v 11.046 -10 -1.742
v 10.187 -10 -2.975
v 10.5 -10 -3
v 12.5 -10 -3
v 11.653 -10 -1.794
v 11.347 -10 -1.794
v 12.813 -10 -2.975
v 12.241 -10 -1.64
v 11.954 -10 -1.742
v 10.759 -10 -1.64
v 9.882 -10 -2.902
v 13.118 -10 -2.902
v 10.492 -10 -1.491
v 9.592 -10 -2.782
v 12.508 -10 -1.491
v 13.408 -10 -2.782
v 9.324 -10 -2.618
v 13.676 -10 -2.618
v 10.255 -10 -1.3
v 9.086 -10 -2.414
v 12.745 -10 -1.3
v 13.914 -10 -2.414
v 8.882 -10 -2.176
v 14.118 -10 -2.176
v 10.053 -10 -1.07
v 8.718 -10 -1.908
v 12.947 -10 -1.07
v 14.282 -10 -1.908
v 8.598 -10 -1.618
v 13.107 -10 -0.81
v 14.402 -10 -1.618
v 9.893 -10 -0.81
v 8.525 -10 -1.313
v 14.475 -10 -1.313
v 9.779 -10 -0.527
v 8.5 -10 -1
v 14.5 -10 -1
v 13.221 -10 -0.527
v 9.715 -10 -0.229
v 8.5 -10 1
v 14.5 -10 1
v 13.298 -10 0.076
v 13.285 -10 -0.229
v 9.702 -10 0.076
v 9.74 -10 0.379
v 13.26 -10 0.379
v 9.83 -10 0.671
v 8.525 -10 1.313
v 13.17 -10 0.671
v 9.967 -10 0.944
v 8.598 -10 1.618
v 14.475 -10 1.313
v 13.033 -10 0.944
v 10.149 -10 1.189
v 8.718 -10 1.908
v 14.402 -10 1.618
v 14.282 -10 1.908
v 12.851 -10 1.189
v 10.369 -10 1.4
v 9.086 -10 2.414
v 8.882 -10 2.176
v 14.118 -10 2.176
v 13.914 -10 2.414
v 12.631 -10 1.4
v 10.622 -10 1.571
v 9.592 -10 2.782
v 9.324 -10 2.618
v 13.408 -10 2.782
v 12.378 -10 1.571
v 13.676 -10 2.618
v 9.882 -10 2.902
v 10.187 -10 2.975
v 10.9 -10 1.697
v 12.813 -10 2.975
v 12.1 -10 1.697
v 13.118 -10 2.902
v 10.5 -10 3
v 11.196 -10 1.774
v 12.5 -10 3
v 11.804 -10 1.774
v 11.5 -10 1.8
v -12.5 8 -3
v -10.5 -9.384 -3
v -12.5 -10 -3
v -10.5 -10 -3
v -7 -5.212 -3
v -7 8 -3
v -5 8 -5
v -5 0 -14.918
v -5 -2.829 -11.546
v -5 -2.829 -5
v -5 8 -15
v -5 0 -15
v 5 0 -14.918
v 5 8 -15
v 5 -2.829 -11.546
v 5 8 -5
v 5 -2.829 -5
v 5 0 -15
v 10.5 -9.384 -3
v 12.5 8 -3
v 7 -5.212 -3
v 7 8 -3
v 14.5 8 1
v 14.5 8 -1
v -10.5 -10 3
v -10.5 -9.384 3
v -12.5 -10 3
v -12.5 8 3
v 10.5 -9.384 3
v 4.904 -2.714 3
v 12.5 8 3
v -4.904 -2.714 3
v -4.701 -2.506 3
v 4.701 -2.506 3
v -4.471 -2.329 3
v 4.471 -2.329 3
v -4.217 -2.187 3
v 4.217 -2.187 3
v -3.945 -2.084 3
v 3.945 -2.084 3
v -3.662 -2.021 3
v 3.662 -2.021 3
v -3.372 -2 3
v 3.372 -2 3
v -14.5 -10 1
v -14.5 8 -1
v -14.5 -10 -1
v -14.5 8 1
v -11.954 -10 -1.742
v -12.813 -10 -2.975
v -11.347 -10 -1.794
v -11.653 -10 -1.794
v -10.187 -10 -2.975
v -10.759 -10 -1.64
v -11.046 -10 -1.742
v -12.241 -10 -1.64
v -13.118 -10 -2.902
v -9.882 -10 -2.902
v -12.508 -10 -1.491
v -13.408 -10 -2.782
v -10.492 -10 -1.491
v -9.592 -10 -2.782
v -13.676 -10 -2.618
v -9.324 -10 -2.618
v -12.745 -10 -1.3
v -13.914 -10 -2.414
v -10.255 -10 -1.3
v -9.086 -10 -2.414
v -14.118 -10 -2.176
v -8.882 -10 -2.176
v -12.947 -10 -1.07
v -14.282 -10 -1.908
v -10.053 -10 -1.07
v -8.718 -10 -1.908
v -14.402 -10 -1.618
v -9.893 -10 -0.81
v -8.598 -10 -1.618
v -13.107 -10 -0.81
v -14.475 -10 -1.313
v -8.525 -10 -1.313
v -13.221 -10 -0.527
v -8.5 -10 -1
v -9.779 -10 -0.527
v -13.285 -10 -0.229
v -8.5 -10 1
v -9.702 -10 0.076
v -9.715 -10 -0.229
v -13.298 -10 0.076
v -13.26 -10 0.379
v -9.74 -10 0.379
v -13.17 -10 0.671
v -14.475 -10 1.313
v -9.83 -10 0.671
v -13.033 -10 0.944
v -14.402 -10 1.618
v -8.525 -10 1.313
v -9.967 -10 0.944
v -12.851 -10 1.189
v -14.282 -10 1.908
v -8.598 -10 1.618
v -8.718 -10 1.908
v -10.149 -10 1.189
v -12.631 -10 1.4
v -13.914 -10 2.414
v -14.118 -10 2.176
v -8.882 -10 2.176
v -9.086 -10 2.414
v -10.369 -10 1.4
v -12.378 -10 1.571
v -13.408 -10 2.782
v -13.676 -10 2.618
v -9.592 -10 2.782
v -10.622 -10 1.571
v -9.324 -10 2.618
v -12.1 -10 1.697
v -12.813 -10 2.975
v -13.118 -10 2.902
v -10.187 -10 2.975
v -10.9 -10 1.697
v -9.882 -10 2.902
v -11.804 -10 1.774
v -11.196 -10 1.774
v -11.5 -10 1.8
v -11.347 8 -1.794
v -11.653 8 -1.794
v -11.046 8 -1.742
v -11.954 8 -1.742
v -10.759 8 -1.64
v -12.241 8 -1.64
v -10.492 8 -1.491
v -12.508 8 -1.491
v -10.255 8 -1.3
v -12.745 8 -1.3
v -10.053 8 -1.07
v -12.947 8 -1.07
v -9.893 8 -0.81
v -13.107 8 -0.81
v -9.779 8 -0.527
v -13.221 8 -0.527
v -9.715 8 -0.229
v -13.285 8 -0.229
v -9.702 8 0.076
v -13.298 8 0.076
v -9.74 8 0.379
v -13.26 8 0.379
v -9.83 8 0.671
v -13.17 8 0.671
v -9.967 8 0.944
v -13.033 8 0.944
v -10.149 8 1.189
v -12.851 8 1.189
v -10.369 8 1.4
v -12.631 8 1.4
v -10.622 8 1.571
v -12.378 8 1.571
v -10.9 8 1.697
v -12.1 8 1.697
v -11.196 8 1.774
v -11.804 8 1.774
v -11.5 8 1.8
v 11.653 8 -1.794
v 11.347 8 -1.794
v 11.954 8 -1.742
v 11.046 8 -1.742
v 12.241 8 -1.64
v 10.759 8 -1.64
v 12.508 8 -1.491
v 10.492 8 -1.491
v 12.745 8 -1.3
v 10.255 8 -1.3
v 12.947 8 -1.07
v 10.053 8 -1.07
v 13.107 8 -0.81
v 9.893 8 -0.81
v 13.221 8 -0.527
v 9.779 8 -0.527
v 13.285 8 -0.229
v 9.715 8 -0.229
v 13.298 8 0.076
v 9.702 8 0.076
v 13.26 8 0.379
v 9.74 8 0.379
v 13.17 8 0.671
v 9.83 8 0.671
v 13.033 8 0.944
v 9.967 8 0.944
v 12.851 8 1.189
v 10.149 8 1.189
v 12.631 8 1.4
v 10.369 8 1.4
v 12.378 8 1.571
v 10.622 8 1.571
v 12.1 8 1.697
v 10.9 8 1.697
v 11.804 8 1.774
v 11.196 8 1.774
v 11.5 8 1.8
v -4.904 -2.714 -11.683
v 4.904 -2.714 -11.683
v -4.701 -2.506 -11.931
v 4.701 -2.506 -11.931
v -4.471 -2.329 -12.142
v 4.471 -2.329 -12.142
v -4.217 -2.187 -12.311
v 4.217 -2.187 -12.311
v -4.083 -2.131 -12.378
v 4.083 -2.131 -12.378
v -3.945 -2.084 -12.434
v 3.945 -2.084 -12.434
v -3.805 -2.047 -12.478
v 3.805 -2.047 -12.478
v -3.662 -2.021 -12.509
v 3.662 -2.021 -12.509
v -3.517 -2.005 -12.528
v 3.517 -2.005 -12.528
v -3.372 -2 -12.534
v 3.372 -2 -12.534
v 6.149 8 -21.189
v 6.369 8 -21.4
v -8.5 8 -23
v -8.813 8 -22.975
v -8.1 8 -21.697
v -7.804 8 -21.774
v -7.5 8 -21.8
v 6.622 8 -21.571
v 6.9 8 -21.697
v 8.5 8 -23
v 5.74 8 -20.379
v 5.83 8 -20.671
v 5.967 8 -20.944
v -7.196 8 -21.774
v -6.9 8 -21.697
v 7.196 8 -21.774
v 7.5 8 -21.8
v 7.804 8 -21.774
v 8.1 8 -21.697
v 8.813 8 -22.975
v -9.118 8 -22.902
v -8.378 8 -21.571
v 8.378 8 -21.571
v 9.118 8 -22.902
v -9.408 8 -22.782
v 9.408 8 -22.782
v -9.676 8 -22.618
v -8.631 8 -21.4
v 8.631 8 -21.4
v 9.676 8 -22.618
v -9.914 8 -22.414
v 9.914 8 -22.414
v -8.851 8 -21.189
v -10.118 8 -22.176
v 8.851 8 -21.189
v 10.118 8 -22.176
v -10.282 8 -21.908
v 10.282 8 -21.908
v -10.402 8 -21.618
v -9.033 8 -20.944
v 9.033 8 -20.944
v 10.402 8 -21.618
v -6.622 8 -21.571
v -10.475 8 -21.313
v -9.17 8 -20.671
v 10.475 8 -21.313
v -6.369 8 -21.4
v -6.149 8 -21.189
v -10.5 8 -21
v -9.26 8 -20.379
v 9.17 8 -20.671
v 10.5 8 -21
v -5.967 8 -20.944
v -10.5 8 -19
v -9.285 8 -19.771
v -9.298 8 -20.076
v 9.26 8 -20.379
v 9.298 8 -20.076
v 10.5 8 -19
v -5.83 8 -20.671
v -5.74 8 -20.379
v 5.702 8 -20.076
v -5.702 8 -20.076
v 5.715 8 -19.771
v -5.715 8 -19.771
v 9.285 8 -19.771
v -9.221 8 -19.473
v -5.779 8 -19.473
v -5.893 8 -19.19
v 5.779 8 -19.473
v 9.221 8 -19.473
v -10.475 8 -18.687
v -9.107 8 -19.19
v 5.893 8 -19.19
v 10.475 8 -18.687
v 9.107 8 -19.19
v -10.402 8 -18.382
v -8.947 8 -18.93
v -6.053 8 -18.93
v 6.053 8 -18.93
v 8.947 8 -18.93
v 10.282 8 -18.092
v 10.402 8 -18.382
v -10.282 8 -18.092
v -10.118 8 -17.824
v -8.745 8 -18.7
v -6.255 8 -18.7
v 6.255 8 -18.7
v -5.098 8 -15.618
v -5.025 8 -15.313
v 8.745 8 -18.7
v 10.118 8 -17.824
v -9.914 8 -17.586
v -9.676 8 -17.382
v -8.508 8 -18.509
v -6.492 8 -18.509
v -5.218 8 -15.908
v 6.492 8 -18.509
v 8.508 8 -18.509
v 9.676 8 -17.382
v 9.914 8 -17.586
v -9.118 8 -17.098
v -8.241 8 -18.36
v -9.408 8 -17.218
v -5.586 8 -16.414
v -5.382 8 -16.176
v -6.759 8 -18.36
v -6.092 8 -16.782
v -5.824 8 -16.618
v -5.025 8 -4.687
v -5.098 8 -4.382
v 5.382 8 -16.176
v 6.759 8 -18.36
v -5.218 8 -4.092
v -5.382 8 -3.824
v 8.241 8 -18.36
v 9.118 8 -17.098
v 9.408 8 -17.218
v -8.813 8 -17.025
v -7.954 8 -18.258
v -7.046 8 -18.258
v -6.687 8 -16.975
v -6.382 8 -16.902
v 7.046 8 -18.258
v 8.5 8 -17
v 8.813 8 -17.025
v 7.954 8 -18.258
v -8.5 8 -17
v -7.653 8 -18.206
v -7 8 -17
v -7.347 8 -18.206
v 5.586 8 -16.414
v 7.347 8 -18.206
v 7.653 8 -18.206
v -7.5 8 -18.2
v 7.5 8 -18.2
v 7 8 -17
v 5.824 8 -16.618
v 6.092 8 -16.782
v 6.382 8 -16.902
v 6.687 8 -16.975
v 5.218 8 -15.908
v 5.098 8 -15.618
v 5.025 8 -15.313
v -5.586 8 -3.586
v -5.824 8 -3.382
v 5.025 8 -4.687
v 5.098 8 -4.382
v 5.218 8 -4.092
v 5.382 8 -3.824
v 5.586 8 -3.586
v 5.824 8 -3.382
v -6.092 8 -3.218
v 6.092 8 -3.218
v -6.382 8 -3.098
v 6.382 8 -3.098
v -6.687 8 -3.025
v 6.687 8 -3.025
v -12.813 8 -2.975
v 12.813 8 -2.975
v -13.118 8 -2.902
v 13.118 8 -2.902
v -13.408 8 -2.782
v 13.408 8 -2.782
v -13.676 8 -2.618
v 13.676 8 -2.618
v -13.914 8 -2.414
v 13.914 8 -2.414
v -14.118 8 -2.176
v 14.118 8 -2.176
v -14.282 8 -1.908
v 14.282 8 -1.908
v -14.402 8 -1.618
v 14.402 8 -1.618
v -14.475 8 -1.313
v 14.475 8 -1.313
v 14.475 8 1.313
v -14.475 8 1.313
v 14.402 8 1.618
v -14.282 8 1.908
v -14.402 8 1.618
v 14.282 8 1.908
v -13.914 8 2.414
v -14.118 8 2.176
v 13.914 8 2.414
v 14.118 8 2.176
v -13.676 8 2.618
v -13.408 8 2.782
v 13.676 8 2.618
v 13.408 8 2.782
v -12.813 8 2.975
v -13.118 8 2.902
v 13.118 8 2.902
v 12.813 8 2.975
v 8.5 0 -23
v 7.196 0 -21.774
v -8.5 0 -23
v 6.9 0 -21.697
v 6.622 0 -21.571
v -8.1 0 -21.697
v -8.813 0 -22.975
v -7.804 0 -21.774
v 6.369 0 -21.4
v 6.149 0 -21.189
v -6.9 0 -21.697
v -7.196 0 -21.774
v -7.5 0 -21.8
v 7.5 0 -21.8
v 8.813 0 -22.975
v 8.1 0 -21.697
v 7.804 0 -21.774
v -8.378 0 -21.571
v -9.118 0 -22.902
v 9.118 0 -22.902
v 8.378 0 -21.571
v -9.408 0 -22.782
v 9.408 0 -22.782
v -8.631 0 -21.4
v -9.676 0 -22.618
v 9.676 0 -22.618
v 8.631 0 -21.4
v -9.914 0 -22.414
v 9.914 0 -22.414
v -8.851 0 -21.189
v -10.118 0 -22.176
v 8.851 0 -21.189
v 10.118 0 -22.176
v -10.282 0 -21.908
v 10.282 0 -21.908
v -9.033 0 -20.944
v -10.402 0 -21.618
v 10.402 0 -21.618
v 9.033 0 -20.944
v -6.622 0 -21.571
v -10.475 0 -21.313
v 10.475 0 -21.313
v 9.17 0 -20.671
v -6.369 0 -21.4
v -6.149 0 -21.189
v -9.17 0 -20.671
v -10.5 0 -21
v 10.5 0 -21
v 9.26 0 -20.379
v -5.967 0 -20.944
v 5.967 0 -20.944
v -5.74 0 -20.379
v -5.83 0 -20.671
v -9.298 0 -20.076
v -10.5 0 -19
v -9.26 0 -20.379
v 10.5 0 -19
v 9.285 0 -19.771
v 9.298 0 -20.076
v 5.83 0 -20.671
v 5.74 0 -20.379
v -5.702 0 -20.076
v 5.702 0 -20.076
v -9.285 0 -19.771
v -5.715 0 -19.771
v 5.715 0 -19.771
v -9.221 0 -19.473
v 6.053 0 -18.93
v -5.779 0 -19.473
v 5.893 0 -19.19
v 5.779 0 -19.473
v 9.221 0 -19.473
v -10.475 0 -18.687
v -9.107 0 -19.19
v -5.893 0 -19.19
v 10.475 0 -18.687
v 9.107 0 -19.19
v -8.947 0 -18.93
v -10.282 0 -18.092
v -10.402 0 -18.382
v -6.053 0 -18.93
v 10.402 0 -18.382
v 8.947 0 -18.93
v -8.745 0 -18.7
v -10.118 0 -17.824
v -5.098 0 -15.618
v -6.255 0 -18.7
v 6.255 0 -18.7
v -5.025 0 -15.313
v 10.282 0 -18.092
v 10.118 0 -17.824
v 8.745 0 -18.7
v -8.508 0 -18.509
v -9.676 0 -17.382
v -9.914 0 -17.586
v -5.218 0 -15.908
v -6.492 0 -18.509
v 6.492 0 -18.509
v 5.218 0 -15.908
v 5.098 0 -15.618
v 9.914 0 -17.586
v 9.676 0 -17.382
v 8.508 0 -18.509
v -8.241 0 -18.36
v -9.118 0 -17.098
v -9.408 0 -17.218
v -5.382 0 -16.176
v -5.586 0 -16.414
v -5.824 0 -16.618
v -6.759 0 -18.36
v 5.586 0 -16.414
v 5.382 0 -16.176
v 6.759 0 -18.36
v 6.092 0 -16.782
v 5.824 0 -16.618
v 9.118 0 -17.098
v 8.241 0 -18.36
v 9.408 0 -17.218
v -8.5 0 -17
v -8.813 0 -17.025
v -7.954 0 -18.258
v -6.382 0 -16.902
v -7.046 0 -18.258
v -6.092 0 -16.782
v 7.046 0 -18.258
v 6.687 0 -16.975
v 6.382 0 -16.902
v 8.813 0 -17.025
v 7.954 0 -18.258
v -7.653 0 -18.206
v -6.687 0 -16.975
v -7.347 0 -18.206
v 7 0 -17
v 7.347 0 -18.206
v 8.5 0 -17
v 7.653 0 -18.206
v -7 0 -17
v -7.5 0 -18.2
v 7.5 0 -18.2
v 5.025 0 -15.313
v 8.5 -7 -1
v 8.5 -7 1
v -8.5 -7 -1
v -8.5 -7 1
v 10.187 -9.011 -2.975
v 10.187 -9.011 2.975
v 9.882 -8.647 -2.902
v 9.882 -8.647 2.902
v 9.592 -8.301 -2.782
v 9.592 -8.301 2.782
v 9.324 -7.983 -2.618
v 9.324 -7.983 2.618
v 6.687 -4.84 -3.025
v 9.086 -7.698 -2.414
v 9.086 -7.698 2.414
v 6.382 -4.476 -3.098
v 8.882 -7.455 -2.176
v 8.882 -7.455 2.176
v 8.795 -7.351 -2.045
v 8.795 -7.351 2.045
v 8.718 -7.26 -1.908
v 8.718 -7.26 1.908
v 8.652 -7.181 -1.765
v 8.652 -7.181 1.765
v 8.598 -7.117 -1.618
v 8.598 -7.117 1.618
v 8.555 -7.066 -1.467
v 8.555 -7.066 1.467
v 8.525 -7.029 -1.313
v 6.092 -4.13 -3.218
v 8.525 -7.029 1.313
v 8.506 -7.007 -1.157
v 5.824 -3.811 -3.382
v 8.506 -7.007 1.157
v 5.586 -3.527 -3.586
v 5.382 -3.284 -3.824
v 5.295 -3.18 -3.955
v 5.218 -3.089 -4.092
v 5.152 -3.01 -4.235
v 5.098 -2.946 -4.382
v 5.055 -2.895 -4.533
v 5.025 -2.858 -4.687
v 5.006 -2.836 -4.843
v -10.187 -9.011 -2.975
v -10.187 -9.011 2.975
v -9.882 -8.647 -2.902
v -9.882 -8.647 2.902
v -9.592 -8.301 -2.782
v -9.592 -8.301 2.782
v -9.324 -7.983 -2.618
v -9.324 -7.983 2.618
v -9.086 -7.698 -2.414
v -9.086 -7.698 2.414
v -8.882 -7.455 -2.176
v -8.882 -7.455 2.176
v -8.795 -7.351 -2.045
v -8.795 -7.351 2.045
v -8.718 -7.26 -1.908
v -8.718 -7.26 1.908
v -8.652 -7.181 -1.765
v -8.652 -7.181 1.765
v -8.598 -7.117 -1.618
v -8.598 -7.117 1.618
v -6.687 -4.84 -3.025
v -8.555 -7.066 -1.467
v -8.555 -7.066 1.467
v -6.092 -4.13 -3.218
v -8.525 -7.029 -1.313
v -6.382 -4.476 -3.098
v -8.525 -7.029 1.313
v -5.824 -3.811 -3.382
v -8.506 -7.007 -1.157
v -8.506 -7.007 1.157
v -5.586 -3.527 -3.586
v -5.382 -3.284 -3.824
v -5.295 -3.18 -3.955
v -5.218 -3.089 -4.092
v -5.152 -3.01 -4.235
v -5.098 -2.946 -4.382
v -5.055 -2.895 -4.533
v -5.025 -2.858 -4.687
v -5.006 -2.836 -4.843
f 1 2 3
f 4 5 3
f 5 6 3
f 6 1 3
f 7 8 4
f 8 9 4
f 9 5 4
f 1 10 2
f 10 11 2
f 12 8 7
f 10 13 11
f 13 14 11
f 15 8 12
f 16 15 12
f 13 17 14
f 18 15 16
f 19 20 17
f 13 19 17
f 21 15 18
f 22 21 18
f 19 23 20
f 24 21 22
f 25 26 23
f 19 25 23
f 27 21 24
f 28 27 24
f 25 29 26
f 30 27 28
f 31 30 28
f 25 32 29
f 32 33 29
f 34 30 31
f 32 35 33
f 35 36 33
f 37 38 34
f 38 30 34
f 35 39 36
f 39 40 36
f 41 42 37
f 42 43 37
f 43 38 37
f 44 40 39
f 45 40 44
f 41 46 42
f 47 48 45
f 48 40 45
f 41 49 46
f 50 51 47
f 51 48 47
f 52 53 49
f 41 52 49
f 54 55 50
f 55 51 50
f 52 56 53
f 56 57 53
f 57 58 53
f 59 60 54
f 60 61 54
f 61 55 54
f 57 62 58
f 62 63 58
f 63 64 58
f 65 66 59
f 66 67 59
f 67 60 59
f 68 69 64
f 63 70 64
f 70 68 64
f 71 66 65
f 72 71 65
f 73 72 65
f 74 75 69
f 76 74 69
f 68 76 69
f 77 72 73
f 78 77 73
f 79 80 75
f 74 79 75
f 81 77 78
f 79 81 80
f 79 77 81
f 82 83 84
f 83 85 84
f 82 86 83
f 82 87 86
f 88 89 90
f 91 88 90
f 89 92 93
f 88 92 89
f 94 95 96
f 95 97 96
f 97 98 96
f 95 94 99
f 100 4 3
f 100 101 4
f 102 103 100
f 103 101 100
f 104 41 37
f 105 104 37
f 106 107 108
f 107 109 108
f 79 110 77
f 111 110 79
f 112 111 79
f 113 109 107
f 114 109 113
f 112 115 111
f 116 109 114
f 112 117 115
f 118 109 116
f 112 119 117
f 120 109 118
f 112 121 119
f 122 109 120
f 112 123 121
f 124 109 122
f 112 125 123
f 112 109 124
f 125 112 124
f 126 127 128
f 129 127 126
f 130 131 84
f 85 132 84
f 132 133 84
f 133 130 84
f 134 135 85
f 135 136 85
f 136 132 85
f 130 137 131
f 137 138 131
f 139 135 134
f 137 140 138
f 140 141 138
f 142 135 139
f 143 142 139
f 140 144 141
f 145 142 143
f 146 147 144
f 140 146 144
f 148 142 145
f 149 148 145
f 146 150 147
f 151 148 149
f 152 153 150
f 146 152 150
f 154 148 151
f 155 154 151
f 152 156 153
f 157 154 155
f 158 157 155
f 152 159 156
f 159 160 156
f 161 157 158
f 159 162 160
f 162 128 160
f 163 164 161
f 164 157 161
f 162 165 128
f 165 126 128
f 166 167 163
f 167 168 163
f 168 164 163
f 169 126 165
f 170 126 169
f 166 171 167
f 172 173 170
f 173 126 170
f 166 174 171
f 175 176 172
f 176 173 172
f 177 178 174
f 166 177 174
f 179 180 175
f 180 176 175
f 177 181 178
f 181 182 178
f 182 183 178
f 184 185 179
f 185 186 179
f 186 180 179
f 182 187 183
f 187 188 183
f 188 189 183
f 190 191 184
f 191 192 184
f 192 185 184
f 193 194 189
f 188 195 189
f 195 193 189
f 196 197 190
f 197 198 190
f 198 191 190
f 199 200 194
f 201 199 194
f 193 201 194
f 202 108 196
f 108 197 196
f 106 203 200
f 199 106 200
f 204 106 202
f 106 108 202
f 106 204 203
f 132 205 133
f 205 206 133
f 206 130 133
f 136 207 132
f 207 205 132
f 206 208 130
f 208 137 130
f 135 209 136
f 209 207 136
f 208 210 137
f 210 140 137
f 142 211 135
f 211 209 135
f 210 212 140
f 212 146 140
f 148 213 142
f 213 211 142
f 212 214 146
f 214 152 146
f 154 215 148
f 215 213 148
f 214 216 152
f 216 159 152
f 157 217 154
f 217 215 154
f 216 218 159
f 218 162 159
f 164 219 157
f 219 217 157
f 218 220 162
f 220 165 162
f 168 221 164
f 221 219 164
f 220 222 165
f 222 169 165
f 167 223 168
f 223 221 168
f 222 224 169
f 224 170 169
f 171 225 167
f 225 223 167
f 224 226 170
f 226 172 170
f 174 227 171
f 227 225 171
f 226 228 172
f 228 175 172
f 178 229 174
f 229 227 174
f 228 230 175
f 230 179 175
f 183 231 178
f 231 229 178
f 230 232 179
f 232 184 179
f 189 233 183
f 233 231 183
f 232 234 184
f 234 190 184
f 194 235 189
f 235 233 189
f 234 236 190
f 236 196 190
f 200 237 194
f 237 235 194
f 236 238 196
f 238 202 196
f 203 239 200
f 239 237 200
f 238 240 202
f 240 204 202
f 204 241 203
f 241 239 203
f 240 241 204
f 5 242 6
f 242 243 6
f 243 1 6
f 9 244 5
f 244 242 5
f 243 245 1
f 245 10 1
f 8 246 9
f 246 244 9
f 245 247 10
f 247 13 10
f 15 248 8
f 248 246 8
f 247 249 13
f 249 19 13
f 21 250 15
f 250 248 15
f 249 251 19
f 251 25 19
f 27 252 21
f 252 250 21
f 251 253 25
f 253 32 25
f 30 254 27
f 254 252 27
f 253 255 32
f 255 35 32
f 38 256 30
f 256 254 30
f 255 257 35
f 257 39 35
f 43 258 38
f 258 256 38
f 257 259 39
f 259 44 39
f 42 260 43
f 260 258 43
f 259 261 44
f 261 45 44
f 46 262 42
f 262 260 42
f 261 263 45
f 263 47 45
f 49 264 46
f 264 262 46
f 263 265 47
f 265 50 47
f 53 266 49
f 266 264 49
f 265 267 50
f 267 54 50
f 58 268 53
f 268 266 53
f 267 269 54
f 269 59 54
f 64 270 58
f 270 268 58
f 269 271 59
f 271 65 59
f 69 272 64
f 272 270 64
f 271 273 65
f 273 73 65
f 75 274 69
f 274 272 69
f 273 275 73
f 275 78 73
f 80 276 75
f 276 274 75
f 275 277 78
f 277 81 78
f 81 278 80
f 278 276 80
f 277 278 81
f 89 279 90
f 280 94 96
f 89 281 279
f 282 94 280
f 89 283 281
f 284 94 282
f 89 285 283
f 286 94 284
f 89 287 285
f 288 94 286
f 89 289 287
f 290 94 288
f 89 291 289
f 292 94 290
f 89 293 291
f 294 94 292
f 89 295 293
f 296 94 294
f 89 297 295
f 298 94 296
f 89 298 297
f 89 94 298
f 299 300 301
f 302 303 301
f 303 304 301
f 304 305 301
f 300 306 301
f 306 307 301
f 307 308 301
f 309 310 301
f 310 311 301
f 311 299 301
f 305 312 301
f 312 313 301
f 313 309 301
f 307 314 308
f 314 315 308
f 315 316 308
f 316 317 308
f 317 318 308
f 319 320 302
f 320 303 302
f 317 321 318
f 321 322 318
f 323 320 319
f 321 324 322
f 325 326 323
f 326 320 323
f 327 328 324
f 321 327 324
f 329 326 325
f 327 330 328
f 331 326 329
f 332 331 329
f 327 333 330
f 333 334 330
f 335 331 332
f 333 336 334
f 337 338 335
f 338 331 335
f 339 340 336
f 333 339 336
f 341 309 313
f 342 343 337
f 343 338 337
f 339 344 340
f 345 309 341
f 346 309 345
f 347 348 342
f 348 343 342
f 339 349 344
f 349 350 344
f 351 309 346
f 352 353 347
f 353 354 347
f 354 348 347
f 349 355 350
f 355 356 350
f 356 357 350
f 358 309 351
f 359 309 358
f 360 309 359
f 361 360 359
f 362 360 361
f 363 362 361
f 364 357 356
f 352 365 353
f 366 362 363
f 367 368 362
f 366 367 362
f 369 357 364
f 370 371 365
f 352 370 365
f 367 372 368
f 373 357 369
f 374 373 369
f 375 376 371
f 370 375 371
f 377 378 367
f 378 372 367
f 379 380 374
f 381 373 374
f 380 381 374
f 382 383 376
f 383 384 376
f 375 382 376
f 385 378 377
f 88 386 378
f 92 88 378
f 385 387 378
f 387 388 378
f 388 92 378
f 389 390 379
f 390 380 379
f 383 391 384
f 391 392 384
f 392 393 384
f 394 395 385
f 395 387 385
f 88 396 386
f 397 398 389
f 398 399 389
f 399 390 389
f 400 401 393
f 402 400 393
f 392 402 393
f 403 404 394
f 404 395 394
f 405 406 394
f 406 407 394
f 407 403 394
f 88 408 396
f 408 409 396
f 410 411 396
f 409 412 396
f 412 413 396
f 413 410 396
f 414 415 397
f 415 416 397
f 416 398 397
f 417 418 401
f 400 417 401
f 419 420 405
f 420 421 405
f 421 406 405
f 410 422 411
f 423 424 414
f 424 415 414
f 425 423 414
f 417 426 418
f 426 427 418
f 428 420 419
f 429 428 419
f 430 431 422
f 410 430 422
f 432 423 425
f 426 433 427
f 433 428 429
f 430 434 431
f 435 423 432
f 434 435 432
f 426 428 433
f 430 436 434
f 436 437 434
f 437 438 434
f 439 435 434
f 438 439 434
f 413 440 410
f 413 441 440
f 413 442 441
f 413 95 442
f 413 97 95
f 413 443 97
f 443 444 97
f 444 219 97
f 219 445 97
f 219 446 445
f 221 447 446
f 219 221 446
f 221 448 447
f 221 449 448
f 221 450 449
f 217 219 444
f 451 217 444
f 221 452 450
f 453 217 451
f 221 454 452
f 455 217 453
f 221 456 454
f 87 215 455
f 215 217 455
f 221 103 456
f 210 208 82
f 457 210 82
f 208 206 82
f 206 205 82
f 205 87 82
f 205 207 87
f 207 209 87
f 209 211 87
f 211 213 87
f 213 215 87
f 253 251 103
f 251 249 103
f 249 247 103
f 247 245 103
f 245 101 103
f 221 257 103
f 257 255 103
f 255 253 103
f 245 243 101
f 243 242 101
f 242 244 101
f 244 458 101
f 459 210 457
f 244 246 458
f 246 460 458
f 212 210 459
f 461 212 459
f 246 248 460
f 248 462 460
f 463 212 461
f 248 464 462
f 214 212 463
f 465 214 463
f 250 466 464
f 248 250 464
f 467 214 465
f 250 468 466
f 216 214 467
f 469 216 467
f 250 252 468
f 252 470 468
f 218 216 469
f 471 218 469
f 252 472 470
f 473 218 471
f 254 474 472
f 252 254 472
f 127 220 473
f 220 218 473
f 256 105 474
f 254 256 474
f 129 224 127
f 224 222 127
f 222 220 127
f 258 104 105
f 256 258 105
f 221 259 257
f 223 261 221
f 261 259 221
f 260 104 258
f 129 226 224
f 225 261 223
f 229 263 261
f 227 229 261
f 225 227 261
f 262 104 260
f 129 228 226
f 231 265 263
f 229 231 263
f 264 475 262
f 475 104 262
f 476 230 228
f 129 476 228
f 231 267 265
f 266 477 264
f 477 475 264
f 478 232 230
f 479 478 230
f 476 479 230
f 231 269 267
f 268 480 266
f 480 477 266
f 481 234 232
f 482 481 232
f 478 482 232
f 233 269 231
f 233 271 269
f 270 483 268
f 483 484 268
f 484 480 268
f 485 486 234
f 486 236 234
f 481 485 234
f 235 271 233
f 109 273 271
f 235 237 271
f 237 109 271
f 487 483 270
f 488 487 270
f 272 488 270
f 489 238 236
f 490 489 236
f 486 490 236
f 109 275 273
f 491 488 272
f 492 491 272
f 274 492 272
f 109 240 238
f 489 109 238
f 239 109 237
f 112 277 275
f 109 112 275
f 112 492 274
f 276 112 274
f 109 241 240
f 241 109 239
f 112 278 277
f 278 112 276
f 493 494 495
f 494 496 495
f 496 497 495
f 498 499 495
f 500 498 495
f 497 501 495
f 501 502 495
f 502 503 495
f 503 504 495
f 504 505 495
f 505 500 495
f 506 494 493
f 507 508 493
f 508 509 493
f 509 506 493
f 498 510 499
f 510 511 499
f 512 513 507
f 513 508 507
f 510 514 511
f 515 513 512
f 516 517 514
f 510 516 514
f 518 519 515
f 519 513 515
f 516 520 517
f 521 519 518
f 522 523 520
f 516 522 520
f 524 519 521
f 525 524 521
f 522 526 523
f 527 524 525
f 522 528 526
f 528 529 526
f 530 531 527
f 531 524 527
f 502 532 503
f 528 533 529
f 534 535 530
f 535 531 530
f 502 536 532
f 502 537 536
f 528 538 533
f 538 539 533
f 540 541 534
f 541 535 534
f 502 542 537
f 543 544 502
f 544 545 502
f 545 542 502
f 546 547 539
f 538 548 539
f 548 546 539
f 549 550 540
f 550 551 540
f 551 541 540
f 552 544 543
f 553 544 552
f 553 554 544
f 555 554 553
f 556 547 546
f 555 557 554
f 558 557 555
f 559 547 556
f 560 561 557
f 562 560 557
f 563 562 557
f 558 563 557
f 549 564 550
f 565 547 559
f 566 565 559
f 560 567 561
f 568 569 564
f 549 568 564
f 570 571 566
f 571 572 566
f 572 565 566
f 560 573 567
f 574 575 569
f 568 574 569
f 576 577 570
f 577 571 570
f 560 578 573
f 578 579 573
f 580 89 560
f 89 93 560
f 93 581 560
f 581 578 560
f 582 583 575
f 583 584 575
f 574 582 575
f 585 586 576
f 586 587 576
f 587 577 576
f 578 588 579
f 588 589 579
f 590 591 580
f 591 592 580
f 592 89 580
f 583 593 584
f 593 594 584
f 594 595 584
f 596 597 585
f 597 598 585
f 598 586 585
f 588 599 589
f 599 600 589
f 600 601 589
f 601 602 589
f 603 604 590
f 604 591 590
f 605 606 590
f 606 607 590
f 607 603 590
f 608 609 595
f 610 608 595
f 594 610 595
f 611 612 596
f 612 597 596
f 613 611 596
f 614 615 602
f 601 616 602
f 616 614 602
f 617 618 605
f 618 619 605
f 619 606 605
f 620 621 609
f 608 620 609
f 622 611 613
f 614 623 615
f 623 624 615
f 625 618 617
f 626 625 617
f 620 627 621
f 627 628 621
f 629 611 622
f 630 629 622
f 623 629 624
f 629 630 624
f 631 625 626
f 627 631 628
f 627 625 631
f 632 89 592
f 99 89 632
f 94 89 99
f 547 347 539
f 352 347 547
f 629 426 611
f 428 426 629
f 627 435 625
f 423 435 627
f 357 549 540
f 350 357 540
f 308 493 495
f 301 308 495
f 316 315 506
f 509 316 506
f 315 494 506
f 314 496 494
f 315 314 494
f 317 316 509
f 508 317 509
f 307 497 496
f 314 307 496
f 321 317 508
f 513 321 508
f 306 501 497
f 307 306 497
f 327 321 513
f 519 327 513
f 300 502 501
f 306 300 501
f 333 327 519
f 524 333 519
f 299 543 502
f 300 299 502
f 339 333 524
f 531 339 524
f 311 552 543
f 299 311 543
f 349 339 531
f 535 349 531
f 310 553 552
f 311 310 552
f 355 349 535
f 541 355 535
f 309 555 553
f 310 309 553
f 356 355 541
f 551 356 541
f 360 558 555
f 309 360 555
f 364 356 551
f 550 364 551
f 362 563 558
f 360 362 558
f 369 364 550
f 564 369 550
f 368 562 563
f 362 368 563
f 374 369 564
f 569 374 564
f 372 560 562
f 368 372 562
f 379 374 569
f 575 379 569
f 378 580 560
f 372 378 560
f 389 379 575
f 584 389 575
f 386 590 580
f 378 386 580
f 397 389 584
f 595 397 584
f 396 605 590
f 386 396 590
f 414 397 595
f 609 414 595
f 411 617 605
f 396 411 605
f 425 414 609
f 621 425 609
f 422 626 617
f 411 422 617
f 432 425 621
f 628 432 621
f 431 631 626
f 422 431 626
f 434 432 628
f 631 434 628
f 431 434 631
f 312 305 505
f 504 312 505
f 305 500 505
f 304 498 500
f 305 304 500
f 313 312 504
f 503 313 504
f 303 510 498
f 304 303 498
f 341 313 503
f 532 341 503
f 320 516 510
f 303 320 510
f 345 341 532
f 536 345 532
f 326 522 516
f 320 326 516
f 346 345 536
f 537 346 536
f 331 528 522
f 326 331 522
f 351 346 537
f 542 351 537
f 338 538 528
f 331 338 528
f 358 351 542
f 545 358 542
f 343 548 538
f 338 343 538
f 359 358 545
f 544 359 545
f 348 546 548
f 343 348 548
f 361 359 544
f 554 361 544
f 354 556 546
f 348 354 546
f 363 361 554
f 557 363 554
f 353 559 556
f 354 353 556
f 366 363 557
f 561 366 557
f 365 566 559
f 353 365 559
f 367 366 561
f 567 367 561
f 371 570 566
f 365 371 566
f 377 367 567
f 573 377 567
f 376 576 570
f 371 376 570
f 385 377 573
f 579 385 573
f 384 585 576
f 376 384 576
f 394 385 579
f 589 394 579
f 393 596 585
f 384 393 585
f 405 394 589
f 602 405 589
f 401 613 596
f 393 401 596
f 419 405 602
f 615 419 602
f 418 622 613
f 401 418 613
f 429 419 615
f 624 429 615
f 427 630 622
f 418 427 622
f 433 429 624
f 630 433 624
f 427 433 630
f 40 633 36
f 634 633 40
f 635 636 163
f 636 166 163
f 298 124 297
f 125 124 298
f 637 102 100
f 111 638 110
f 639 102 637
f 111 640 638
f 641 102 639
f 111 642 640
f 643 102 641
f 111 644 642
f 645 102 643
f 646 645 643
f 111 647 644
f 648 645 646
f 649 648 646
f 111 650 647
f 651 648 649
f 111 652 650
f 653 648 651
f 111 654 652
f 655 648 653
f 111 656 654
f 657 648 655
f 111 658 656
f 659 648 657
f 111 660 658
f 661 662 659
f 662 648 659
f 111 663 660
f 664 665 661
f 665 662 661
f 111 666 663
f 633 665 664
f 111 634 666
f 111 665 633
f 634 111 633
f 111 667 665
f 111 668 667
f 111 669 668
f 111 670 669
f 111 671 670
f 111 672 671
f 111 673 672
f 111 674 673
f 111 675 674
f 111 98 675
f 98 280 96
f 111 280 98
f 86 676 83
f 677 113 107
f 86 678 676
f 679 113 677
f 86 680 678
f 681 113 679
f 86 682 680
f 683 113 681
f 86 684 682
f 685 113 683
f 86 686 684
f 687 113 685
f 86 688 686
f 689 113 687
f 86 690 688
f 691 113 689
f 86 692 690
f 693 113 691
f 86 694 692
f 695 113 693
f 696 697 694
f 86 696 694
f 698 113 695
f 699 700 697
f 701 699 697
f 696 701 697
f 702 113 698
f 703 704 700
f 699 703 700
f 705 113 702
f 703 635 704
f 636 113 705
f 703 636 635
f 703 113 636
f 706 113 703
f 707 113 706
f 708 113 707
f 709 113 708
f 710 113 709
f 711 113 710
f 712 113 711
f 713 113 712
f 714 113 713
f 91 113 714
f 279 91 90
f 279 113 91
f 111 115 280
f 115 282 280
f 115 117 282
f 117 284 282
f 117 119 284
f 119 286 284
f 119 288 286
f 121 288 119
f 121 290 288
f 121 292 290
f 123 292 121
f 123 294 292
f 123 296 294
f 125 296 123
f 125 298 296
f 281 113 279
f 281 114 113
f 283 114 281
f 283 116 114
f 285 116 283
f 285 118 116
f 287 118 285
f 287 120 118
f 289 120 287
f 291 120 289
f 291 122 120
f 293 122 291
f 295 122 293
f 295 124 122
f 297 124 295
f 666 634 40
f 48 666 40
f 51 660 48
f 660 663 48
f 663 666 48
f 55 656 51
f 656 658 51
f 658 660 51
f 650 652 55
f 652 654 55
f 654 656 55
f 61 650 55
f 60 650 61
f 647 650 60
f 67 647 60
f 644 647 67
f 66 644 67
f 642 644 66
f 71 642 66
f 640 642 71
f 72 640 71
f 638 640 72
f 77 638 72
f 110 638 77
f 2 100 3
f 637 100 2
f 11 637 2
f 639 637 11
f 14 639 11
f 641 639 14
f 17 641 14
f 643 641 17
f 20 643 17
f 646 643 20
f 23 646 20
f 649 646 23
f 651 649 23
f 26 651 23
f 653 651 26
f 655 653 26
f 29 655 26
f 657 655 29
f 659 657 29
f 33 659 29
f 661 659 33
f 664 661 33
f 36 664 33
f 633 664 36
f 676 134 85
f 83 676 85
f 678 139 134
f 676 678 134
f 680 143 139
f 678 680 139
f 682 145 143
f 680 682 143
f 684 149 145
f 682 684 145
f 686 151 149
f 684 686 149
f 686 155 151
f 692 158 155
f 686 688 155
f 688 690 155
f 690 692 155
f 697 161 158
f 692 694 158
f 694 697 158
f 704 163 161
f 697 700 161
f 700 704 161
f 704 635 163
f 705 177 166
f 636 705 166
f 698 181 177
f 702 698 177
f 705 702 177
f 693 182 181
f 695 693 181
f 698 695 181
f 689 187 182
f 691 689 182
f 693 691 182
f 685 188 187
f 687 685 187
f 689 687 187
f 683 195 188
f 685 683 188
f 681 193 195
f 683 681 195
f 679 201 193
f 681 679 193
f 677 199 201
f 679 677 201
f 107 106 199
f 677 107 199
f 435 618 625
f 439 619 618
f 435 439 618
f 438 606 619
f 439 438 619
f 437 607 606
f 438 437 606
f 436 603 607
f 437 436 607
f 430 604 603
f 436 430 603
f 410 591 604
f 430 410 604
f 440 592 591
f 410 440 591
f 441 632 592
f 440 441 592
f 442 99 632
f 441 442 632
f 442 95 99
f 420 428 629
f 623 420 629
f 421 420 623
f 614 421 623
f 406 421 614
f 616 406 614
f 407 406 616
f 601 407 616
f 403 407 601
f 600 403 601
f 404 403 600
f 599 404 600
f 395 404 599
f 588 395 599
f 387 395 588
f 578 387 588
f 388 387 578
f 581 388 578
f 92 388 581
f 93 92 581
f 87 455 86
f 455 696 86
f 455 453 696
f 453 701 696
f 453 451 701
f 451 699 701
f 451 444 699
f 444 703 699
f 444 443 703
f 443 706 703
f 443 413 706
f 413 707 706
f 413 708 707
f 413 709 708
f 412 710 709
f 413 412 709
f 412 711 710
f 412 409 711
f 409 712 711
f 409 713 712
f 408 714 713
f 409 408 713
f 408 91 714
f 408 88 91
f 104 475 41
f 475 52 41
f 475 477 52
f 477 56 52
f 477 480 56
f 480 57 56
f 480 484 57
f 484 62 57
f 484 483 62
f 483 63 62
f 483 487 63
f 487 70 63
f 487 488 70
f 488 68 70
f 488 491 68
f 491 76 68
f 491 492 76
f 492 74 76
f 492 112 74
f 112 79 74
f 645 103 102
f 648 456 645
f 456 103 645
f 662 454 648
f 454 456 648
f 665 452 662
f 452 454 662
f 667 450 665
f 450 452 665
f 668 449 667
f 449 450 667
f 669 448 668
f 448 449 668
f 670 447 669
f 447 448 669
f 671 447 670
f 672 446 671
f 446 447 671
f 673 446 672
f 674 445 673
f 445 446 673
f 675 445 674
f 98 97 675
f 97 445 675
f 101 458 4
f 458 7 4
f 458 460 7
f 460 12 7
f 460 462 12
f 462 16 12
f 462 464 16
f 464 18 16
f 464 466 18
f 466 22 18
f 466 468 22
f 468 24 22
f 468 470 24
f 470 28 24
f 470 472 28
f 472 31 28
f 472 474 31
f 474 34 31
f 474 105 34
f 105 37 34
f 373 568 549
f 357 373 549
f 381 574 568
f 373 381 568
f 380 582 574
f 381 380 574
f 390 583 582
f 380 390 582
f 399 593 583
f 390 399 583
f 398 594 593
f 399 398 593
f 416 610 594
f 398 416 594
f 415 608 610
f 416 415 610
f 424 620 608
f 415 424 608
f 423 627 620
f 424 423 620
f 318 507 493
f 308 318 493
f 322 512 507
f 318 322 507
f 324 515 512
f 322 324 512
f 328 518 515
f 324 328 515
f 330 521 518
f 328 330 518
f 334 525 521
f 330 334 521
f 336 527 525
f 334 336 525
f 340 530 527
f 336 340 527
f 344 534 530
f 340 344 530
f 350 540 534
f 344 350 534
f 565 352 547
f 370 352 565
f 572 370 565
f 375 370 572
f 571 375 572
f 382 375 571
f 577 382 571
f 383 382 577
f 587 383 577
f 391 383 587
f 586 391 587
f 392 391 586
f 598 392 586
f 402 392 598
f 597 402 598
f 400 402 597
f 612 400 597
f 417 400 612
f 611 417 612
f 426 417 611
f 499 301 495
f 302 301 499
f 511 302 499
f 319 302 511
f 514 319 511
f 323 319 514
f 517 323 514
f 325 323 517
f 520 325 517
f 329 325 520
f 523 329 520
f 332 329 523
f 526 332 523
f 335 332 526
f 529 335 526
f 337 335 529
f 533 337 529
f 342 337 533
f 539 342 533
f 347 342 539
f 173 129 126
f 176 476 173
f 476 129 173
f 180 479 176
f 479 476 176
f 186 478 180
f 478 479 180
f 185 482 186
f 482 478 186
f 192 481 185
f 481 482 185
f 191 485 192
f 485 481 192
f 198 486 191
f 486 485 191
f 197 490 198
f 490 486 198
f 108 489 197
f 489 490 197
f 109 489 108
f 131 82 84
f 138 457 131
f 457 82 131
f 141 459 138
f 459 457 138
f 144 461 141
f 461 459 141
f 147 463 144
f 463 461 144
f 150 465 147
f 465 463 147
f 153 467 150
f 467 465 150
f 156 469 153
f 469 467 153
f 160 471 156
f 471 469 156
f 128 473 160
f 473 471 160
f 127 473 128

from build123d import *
from OCP.BRepFilletAPI import BRepFilletAPI_MakeChamfer

# Parameters (mm, degrees)
SKETCH2_R           = 1.8
BOSS_EXTRUDE1_DEPTH = 10
CHAMFER1_SIZE       = 20
CHAMFER1_SIZE_2     = 16.781992624
BOSS_EXTRUDE3_START = 8
SKETCH4_R           = 1.8
BOSS_EXTRUDE3_DEPTH = 8
CUT_EXTRUDE1_DEPTH  = 8
CHAMFER3_SIZE       = 5
CHAMFER3_SIZE2      = 4.195498156
FILLET1_R           = 2


with BuildPart() as part:
    # Sketch2 → Boss-Extrude1 (new body)
    with BuildSketch(Plane(origin=(0, 0, 0), x_dir=(1, 0, 0), z_dir=(0, 1, 0))):
        Polygon((-11.5, 3), (-5, 3), (-5, 17), (-7.5, 17), (-10.5, 17), (-10.5, 23), (-7.5, 23), (7.5, 23), (10.5, 23), (10.5, 17), (7.5, 17), (5, 17), (5, 3), (11.5, 3), (14.5, 3), (14.5, -3), (11.5, -3), (-11.5, -3), (-14.5, -3), (-14.5, 3), align=None)
        with Locations(Location((-11.5, 0, 0), (0, 0, 270))):
            Circle(SKETCH2_R, mode=Mode.SUBTRACT)
        with Locations(Location((11.5, 0, 0), (0, 0, 270))):
            Circle(SKETCH2_R, mode=Mode.SUBTRACT)
        with Locations(Location((-7.5, 20, 0), (0, 0, 270))):
            Circle(SKETCH2_R, mode=Mode.SUBTRACT)
        with Locations(Location((7.5, 20, 0), (0, 0, 270))):
            Circle(SKETCH2_R, mode=Mode.SUBTRACT)
    extrude(amount=-BOSS_EXTRUDE1_DEPTH)

    # Chamfer1
    # the kernel refuses this chamfer: 20, 16.781992624 mm, written as the material it takes off along each edge
    with BuildSketch(Plane(origin=(62.048122067, -10, -23), x_dir=(0, -0.02493932209023439, 0.9996889667359941), z_dir=(-1, 0, 0))) as chamfer1_piece_1:
        Polygon((CHAMFER1_SIZE * 0.999688966736, CHAMFER1_SIZE * 0.0249393220902), (-CHAMFER1_SIZE_2 * 0.0249393220896, CHAMFER1_SIZE_2 * 0.999688966709), (0, 0), align=None)
    extrude(amount=124.096244134, mode=Mode.SUBTRACT)

    # Sketch4 → Boss-Extrude3 (add)
    with BuildSketch(Plane(origin=(0, 0, 0), x_dir=(1, 0, 0), z_dir=(0, 1, 0)).offset(BOSS_EXTRUDE3_START)):
        Polygon((-7.5, 23), (7.5, 23), (10.5, 23), (10.5, 17), (7.5, 17), (5, 17), (5, 3), (11.5, 3), (14.5, 3), (14.5, -3), (11.5, -3), (-11.5, -3), (-14.5, -3), (-14.5, 3), (-11.5, 3), (-5, 3), (-5, 17), (-7.5, 17), (-10.5, 17), (-10.5, 23), align=None)
        with Locations(Location((-11.5, 0, 0), (0, 0, 270))):
            Circle(SKETCH4_R, mode=Mode.SUBTRACT)
        with Locations(Location((11.5, 0, 0), (0, 0, 270))):
            Circle(SKETCH4_R, mode=Mode.SUBTRACT)
        with Locations(Location((7.5, 20, 0), (0, 0, 270))):
            Circle(SKETCH4_R, mode=Mode.SUBTRACT)
        with Locations(Location((-7.5, 20, 0), (0, 0, 270))):
            Circle(SKETCH4_R, mode=Mode.SUBTRACT)
    extrude(amount=-BOSS_EXTRUDE3_DEPTH)

    # Sketch5 → Cut-Extrude1 (cut)
    with BuildSketch(Plane.XZ.offset(10)):
        Polygon((-8.5, 3), (8.5, 3), (8.5, -3), (8.5, -14.917535926), (5, -14.917535926), (-5, -14.917535926), (-8.5, -14.917535926), (-8.5, -3), align=None)
    extrude(amount=-CUT_EXTRUDE1_DEPTH, mode=Mode.SUBTRACT)

    # Chamfer3: one chamfer whose edges measure the first distance from different faces: ONE call of the kernel's chamfer builder (chamfer() names one face for all edges)
    chamfer3_edges_1 = [part.edges().sort_by_distance(p)[0] for p in [
        (8.5, -2, 0),
    ]]
    chamfer3_side_1 = [part.faces().sort_by_distance(p)[0] for p in [
        (8.5, -6, 0),
    ]]
    chamfer3_edges_2 = [part.edges().sort_by_distance(p)[0] for p in [
        (-8.5, -2, 0),
    ]]
    chamfer3_side_2 = [part.faces().sort_by_distance(p)[0] for p in [
        (-8.5, -6, 0),
    ]]
    chamfer3 = BRepFilletAPI_MakeChamfer(part.part.solid().wrapped)
    for e in chamfer3_edges_1:
        chamfer3.Add(CHAMFER3_SIZE, CHAMFER3_SIZE2, e.wrapped, chamfer3_side_1[0].wrapped)  # the first distance lies on this face
    for e in chamfer3_edges_2:
        chamfer3.Add(CHAMFER3_SIZE, CHAMFER3_SIZE2, e.wrapped, chamfer3_side_2[0].wrapped)  # the first distance lies on this face
    add(Compound.cast(chamfer3.Shape()), mode=Mode.REPLACE)

    # Fillet1
    fillet1_edges = [part.edges().sort_by_distance(p)[0] for p in [
        (-10.5, 4, -23),
        (-10.5, 4, -17),
        (-5, 4, -17),
        (5, 4, -17),
        (10.5, 4, -17),
        (10.5, 4, -23),
        (5, 2.585568787, -3),
        (-5, 2.585568787, -3),
        (-8.5, -8.5, -3),
        (-4.304501844, -2, -4.76701437),
        (4.304501844, -2, -4.76701437),
        (8.5, -8.5, -3),
        (8.5, -8.5, 3),
        (-8.5, -8.5, 3),
        (14.5, -1, -3),
        (14.5, -1, 3),
        (-14.5, -1, 3),
        (-14.5, -1, -3),
    ]]
    fillet(fillet1_edges, radius=FILLET1_R)


solid = part.part
